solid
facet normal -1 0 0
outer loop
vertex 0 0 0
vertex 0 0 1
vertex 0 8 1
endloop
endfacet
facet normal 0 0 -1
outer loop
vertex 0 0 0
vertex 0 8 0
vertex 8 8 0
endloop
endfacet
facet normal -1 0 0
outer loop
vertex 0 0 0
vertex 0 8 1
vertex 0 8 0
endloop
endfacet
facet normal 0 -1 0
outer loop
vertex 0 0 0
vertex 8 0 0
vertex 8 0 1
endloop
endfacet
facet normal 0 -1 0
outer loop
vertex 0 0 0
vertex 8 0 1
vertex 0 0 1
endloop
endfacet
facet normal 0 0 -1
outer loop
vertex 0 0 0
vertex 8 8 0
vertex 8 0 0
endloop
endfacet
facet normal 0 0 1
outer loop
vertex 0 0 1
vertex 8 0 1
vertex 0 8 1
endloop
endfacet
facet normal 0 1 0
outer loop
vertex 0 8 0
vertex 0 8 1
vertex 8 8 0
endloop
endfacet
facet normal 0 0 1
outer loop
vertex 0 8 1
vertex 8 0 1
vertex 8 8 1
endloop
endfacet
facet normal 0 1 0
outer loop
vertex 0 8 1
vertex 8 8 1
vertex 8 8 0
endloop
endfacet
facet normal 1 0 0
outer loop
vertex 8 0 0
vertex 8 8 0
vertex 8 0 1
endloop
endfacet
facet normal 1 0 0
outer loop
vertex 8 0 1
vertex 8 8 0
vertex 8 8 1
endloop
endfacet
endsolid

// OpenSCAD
/* Warning, this is a very basic generator with a lot of approximation 
input data : [VQFN, MEC, 8x8x1.0mm, 56, , A, C04-25411A]
generated by com.zoubworld.electronics.cad.model3d.Basic
Date : Sun Feb 15 10:50:49 CET 2026
*/

//body
color("black")
translate([0,0,0])
cube([8.0,8.0,1.0], center=false);
